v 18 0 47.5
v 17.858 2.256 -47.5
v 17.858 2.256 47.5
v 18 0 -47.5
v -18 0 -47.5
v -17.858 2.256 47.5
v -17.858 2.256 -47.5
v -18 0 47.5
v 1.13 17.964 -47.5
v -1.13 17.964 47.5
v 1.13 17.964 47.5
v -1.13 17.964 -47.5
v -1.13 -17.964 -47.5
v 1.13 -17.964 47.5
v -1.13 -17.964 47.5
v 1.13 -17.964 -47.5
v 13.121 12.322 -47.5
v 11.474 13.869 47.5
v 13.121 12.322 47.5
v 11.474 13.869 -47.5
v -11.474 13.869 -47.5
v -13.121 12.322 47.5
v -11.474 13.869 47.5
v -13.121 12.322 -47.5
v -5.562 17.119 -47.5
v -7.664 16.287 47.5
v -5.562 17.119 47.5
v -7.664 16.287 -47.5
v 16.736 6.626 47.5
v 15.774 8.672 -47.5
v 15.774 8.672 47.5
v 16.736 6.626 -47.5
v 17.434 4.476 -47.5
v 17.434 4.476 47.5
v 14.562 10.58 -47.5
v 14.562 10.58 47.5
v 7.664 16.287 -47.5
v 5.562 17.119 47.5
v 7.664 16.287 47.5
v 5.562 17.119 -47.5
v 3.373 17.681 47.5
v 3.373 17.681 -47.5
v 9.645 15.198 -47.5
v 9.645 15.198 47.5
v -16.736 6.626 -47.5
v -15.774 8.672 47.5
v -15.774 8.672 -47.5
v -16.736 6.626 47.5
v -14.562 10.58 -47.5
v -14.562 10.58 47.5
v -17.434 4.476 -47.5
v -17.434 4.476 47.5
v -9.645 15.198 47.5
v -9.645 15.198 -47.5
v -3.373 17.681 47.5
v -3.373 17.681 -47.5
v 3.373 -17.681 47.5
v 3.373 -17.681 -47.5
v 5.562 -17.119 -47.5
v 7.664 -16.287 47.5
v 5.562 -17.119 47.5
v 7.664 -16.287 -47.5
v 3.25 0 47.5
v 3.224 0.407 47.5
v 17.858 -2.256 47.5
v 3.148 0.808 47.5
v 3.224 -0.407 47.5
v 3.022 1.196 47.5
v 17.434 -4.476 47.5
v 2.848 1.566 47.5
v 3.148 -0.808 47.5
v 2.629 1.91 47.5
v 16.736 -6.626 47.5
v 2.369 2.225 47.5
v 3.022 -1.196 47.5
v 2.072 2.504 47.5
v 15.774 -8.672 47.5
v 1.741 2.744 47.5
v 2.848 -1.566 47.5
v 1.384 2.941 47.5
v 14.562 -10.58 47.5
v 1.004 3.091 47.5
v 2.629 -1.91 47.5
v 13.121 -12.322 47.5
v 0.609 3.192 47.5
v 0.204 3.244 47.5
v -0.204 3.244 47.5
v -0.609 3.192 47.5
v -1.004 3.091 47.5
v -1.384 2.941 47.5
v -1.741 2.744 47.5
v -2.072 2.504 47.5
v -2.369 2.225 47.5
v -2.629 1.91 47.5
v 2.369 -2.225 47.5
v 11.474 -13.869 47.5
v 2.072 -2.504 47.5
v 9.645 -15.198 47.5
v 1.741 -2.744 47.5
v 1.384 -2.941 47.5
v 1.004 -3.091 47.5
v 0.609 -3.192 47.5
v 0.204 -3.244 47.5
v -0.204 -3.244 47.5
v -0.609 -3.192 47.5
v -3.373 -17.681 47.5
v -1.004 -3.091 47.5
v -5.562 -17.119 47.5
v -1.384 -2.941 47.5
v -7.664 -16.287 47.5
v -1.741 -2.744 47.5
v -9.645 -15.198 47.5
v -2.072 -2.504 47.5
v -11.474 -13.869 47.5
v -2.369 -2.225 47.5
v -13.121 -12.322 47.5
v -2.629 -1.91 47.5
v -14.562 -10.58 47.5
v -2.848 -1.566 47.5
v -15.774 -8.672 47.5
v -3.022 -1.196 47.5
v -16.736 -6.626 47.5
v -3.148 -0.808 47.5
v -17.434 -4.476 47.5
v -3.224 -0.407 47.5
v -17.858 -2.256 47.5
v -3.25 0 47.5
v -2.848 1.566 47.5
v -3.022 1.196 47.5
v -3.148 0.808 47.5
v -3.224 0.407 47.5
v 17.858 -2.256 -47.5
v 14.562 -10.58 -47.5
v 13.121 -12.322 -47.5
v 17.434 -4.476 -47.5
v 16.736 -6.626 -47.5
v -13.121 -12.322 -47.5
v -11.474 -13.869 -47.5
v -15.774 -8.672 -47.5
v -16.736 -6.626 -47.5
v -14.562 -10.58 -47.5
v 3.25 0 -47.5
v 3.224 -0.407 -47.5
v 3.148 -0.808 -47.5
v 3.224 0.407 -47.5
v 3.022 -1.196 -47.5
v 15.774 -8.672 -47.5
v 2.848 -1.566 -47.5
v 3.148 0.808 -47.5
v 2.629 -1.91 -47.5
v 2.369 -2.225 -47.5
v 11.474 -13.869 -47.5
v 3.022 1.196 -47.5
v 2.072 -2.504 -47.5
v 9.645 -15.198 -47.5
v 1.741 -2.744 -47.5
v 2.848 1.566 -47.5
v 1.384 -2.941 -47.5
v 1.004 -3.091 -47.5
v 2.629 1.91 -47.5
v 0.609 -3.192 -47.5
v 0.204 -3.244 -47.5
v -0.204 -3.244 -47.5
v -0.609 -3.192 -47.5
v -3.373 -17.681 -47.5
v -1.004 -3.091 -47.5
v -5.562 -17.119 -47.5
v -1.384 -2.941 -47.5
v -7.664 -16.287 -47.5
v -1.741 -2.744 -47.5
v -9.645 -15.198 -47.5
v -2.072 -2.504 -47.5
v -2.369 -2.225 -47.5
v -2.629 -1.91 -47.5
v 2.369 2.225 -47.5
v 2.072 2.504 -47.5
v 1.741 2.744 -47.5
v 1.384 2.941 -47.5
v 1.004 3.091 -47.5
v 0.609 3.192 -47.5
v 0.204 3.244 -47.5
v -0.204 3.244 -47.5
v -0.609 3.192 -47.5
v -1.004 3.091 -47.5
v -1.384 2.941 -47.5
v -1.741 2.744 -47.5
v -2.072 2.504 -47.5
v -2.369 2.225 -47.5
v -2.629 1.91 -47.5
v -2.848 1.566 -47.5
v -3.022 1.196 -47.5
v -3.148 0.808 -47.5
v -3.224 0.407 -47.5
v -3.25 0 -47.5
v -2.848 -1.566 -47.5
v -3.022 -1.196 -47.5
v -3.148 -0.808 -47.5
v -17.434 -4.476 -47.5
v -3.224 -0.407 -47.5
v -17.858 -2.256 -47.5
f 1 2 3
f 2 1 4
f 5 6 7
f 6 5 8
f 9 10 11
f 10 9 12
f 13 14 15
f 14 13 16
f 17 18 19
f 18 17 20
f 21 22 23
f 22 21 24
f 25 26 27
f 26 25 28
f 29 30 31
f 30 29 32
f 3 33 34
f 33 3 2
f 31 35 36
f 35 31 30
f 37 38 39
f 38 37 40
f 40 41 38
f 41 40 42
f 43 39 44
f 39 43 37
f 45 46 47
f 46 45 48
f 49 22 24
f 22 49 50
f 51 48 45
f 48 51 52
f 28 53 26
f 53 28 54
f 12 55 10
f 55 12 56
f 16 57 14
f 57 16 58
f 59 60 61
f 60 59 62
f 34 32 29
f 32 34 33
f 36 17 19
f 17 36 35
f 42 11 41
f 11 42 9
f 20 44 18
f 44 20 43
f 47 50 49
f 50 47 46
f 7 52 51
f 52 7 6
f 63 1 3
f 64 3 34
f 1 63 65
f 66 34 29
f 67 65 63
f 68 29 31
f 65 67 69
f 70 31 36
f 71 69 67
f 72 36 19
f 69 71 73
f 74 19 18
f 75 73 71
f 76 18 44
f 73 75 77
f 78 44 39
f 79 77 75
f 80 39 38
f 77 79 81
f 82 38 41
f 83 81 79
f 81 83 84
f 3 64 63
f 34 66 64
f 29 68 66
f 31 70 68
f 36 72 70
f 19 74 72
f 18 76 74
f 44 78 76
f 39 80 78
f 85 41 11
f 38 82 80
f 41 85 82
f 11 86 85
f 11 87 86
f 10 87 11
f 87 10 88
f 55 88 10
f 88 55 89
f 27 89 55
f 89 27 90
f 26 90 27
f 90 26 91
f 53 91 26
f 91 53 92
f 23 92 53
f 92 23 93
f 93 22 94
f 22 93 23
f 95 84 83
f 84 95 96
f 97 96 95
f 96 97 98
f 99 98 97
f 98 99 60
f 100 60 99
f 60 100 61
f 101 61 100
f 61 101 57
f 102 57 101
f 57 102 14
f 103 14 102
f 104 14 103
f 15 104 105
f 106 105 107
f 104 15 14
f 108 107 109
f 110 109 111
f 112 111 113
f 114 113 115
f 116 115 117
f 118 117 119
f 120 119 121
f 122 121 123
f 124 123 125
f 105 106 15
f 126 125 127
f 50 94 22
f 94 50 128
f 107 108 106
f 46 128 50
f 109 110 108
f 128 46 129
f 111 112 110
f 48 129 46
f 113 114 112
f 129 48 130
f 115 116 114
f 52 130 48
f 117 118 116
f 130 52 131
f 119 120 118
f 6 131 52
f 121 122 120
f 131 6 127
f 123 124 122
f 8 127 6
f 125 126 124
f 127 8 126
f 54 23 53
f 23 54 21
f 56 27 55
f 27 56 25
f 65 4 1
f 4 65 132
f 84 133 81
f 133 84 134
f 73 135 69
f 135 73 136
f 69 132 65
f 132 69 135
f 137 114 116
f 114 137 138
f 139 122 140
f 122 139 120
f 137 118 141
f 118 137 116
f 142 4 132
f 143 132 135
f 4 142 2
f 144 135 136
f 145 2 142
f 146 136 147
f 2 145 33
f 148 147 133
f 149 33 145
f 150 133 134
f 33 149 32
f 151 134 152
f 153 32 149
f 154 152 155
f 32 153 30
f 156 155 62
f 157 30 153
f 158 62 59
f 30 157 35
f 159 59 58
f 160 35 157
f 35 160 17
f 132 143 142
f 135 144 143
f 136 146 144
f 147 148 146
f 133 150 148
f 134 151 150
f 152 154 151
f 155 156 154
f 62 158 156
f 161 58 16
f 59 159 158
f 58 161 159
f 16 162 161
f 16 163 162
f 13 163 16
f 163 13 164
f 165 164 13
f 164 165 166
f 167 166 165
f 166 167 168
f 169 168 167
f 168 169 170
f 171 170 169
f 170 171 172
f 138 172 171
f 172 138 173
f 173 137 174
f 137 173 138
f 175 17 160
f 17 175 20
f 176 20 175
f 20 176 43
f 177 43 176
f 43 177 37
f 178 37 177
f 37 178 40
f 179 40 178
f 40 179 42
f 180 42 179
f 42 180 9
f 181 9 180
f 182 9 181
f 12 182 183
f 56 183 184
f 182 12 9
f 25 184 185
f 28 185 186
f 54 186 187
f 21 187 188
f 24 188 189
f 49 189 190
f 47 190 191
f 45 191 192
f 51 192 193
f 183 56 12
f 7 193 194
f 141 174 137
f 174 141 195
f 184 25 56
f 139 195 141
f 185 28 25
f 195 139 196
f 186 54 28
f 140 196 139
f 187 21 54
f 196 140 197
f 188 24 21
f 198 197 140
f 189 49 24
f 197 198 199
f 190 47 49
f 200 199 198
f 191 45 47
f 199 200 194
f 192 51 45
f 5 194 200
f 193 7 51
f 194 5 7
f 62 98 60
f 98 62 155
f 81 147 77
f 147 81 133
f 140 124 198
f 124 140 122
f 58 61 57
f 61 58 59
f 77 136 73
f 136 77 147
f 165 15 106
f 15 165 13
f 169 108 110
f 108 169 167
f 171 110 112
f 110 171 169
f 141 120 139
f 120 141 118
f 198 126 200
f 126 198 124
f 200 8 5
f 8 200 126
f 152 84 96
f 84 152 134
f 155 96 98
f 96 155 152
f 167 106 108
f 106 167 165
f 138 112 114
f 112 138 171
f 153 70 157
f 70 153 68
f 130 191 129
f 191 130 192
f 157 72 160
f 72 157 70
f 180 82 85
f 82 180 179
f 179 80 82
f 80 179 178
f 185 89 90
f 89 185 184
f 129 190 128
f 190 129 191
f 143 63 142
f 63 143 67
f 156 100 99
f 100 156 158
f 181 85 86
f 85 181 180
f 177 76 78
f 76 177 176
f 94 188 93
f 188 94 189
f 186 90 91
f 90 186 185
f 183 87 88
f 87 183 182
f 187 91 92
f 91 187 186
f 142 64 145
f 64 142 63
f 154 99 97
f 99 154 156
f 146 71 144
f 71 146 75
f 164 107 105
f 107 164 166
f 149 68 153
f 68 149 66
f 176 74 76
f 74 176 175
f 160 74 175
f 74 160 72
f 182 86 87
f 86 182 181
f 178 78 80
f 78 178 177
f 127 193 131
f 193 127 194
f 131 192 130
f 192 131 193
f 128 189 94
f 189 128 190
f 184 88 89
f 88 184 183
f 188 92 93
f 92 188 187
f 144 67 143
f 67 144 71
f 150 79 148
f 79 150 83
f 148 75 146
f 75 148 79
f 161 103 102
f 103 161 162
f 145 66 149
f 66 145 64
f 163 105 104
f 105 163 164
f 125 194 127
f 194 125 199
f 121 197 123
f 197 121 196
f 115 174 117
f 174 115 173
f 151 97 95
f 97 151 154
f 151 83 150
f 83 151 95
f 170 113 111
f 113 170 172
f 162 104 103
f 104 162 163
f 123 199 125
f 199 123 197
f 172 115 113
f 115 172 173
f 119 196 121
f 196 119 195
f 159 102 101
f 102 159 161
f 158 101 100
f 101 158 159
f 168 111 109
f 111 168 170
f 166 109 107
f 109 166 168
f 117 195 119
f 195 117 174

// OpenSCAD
$fn = 50;


difference() {
	union() {
		translate(v = [0, 0, -47.5000000000]) {
			cylinder(h = 95, r = 18.0000000000);
		}
	}
	union() {
		translate(v = [0, 0, -100.0000000000]) {
			cylinder(h = 200, r = 3.2500000000);
		}
	}
}
